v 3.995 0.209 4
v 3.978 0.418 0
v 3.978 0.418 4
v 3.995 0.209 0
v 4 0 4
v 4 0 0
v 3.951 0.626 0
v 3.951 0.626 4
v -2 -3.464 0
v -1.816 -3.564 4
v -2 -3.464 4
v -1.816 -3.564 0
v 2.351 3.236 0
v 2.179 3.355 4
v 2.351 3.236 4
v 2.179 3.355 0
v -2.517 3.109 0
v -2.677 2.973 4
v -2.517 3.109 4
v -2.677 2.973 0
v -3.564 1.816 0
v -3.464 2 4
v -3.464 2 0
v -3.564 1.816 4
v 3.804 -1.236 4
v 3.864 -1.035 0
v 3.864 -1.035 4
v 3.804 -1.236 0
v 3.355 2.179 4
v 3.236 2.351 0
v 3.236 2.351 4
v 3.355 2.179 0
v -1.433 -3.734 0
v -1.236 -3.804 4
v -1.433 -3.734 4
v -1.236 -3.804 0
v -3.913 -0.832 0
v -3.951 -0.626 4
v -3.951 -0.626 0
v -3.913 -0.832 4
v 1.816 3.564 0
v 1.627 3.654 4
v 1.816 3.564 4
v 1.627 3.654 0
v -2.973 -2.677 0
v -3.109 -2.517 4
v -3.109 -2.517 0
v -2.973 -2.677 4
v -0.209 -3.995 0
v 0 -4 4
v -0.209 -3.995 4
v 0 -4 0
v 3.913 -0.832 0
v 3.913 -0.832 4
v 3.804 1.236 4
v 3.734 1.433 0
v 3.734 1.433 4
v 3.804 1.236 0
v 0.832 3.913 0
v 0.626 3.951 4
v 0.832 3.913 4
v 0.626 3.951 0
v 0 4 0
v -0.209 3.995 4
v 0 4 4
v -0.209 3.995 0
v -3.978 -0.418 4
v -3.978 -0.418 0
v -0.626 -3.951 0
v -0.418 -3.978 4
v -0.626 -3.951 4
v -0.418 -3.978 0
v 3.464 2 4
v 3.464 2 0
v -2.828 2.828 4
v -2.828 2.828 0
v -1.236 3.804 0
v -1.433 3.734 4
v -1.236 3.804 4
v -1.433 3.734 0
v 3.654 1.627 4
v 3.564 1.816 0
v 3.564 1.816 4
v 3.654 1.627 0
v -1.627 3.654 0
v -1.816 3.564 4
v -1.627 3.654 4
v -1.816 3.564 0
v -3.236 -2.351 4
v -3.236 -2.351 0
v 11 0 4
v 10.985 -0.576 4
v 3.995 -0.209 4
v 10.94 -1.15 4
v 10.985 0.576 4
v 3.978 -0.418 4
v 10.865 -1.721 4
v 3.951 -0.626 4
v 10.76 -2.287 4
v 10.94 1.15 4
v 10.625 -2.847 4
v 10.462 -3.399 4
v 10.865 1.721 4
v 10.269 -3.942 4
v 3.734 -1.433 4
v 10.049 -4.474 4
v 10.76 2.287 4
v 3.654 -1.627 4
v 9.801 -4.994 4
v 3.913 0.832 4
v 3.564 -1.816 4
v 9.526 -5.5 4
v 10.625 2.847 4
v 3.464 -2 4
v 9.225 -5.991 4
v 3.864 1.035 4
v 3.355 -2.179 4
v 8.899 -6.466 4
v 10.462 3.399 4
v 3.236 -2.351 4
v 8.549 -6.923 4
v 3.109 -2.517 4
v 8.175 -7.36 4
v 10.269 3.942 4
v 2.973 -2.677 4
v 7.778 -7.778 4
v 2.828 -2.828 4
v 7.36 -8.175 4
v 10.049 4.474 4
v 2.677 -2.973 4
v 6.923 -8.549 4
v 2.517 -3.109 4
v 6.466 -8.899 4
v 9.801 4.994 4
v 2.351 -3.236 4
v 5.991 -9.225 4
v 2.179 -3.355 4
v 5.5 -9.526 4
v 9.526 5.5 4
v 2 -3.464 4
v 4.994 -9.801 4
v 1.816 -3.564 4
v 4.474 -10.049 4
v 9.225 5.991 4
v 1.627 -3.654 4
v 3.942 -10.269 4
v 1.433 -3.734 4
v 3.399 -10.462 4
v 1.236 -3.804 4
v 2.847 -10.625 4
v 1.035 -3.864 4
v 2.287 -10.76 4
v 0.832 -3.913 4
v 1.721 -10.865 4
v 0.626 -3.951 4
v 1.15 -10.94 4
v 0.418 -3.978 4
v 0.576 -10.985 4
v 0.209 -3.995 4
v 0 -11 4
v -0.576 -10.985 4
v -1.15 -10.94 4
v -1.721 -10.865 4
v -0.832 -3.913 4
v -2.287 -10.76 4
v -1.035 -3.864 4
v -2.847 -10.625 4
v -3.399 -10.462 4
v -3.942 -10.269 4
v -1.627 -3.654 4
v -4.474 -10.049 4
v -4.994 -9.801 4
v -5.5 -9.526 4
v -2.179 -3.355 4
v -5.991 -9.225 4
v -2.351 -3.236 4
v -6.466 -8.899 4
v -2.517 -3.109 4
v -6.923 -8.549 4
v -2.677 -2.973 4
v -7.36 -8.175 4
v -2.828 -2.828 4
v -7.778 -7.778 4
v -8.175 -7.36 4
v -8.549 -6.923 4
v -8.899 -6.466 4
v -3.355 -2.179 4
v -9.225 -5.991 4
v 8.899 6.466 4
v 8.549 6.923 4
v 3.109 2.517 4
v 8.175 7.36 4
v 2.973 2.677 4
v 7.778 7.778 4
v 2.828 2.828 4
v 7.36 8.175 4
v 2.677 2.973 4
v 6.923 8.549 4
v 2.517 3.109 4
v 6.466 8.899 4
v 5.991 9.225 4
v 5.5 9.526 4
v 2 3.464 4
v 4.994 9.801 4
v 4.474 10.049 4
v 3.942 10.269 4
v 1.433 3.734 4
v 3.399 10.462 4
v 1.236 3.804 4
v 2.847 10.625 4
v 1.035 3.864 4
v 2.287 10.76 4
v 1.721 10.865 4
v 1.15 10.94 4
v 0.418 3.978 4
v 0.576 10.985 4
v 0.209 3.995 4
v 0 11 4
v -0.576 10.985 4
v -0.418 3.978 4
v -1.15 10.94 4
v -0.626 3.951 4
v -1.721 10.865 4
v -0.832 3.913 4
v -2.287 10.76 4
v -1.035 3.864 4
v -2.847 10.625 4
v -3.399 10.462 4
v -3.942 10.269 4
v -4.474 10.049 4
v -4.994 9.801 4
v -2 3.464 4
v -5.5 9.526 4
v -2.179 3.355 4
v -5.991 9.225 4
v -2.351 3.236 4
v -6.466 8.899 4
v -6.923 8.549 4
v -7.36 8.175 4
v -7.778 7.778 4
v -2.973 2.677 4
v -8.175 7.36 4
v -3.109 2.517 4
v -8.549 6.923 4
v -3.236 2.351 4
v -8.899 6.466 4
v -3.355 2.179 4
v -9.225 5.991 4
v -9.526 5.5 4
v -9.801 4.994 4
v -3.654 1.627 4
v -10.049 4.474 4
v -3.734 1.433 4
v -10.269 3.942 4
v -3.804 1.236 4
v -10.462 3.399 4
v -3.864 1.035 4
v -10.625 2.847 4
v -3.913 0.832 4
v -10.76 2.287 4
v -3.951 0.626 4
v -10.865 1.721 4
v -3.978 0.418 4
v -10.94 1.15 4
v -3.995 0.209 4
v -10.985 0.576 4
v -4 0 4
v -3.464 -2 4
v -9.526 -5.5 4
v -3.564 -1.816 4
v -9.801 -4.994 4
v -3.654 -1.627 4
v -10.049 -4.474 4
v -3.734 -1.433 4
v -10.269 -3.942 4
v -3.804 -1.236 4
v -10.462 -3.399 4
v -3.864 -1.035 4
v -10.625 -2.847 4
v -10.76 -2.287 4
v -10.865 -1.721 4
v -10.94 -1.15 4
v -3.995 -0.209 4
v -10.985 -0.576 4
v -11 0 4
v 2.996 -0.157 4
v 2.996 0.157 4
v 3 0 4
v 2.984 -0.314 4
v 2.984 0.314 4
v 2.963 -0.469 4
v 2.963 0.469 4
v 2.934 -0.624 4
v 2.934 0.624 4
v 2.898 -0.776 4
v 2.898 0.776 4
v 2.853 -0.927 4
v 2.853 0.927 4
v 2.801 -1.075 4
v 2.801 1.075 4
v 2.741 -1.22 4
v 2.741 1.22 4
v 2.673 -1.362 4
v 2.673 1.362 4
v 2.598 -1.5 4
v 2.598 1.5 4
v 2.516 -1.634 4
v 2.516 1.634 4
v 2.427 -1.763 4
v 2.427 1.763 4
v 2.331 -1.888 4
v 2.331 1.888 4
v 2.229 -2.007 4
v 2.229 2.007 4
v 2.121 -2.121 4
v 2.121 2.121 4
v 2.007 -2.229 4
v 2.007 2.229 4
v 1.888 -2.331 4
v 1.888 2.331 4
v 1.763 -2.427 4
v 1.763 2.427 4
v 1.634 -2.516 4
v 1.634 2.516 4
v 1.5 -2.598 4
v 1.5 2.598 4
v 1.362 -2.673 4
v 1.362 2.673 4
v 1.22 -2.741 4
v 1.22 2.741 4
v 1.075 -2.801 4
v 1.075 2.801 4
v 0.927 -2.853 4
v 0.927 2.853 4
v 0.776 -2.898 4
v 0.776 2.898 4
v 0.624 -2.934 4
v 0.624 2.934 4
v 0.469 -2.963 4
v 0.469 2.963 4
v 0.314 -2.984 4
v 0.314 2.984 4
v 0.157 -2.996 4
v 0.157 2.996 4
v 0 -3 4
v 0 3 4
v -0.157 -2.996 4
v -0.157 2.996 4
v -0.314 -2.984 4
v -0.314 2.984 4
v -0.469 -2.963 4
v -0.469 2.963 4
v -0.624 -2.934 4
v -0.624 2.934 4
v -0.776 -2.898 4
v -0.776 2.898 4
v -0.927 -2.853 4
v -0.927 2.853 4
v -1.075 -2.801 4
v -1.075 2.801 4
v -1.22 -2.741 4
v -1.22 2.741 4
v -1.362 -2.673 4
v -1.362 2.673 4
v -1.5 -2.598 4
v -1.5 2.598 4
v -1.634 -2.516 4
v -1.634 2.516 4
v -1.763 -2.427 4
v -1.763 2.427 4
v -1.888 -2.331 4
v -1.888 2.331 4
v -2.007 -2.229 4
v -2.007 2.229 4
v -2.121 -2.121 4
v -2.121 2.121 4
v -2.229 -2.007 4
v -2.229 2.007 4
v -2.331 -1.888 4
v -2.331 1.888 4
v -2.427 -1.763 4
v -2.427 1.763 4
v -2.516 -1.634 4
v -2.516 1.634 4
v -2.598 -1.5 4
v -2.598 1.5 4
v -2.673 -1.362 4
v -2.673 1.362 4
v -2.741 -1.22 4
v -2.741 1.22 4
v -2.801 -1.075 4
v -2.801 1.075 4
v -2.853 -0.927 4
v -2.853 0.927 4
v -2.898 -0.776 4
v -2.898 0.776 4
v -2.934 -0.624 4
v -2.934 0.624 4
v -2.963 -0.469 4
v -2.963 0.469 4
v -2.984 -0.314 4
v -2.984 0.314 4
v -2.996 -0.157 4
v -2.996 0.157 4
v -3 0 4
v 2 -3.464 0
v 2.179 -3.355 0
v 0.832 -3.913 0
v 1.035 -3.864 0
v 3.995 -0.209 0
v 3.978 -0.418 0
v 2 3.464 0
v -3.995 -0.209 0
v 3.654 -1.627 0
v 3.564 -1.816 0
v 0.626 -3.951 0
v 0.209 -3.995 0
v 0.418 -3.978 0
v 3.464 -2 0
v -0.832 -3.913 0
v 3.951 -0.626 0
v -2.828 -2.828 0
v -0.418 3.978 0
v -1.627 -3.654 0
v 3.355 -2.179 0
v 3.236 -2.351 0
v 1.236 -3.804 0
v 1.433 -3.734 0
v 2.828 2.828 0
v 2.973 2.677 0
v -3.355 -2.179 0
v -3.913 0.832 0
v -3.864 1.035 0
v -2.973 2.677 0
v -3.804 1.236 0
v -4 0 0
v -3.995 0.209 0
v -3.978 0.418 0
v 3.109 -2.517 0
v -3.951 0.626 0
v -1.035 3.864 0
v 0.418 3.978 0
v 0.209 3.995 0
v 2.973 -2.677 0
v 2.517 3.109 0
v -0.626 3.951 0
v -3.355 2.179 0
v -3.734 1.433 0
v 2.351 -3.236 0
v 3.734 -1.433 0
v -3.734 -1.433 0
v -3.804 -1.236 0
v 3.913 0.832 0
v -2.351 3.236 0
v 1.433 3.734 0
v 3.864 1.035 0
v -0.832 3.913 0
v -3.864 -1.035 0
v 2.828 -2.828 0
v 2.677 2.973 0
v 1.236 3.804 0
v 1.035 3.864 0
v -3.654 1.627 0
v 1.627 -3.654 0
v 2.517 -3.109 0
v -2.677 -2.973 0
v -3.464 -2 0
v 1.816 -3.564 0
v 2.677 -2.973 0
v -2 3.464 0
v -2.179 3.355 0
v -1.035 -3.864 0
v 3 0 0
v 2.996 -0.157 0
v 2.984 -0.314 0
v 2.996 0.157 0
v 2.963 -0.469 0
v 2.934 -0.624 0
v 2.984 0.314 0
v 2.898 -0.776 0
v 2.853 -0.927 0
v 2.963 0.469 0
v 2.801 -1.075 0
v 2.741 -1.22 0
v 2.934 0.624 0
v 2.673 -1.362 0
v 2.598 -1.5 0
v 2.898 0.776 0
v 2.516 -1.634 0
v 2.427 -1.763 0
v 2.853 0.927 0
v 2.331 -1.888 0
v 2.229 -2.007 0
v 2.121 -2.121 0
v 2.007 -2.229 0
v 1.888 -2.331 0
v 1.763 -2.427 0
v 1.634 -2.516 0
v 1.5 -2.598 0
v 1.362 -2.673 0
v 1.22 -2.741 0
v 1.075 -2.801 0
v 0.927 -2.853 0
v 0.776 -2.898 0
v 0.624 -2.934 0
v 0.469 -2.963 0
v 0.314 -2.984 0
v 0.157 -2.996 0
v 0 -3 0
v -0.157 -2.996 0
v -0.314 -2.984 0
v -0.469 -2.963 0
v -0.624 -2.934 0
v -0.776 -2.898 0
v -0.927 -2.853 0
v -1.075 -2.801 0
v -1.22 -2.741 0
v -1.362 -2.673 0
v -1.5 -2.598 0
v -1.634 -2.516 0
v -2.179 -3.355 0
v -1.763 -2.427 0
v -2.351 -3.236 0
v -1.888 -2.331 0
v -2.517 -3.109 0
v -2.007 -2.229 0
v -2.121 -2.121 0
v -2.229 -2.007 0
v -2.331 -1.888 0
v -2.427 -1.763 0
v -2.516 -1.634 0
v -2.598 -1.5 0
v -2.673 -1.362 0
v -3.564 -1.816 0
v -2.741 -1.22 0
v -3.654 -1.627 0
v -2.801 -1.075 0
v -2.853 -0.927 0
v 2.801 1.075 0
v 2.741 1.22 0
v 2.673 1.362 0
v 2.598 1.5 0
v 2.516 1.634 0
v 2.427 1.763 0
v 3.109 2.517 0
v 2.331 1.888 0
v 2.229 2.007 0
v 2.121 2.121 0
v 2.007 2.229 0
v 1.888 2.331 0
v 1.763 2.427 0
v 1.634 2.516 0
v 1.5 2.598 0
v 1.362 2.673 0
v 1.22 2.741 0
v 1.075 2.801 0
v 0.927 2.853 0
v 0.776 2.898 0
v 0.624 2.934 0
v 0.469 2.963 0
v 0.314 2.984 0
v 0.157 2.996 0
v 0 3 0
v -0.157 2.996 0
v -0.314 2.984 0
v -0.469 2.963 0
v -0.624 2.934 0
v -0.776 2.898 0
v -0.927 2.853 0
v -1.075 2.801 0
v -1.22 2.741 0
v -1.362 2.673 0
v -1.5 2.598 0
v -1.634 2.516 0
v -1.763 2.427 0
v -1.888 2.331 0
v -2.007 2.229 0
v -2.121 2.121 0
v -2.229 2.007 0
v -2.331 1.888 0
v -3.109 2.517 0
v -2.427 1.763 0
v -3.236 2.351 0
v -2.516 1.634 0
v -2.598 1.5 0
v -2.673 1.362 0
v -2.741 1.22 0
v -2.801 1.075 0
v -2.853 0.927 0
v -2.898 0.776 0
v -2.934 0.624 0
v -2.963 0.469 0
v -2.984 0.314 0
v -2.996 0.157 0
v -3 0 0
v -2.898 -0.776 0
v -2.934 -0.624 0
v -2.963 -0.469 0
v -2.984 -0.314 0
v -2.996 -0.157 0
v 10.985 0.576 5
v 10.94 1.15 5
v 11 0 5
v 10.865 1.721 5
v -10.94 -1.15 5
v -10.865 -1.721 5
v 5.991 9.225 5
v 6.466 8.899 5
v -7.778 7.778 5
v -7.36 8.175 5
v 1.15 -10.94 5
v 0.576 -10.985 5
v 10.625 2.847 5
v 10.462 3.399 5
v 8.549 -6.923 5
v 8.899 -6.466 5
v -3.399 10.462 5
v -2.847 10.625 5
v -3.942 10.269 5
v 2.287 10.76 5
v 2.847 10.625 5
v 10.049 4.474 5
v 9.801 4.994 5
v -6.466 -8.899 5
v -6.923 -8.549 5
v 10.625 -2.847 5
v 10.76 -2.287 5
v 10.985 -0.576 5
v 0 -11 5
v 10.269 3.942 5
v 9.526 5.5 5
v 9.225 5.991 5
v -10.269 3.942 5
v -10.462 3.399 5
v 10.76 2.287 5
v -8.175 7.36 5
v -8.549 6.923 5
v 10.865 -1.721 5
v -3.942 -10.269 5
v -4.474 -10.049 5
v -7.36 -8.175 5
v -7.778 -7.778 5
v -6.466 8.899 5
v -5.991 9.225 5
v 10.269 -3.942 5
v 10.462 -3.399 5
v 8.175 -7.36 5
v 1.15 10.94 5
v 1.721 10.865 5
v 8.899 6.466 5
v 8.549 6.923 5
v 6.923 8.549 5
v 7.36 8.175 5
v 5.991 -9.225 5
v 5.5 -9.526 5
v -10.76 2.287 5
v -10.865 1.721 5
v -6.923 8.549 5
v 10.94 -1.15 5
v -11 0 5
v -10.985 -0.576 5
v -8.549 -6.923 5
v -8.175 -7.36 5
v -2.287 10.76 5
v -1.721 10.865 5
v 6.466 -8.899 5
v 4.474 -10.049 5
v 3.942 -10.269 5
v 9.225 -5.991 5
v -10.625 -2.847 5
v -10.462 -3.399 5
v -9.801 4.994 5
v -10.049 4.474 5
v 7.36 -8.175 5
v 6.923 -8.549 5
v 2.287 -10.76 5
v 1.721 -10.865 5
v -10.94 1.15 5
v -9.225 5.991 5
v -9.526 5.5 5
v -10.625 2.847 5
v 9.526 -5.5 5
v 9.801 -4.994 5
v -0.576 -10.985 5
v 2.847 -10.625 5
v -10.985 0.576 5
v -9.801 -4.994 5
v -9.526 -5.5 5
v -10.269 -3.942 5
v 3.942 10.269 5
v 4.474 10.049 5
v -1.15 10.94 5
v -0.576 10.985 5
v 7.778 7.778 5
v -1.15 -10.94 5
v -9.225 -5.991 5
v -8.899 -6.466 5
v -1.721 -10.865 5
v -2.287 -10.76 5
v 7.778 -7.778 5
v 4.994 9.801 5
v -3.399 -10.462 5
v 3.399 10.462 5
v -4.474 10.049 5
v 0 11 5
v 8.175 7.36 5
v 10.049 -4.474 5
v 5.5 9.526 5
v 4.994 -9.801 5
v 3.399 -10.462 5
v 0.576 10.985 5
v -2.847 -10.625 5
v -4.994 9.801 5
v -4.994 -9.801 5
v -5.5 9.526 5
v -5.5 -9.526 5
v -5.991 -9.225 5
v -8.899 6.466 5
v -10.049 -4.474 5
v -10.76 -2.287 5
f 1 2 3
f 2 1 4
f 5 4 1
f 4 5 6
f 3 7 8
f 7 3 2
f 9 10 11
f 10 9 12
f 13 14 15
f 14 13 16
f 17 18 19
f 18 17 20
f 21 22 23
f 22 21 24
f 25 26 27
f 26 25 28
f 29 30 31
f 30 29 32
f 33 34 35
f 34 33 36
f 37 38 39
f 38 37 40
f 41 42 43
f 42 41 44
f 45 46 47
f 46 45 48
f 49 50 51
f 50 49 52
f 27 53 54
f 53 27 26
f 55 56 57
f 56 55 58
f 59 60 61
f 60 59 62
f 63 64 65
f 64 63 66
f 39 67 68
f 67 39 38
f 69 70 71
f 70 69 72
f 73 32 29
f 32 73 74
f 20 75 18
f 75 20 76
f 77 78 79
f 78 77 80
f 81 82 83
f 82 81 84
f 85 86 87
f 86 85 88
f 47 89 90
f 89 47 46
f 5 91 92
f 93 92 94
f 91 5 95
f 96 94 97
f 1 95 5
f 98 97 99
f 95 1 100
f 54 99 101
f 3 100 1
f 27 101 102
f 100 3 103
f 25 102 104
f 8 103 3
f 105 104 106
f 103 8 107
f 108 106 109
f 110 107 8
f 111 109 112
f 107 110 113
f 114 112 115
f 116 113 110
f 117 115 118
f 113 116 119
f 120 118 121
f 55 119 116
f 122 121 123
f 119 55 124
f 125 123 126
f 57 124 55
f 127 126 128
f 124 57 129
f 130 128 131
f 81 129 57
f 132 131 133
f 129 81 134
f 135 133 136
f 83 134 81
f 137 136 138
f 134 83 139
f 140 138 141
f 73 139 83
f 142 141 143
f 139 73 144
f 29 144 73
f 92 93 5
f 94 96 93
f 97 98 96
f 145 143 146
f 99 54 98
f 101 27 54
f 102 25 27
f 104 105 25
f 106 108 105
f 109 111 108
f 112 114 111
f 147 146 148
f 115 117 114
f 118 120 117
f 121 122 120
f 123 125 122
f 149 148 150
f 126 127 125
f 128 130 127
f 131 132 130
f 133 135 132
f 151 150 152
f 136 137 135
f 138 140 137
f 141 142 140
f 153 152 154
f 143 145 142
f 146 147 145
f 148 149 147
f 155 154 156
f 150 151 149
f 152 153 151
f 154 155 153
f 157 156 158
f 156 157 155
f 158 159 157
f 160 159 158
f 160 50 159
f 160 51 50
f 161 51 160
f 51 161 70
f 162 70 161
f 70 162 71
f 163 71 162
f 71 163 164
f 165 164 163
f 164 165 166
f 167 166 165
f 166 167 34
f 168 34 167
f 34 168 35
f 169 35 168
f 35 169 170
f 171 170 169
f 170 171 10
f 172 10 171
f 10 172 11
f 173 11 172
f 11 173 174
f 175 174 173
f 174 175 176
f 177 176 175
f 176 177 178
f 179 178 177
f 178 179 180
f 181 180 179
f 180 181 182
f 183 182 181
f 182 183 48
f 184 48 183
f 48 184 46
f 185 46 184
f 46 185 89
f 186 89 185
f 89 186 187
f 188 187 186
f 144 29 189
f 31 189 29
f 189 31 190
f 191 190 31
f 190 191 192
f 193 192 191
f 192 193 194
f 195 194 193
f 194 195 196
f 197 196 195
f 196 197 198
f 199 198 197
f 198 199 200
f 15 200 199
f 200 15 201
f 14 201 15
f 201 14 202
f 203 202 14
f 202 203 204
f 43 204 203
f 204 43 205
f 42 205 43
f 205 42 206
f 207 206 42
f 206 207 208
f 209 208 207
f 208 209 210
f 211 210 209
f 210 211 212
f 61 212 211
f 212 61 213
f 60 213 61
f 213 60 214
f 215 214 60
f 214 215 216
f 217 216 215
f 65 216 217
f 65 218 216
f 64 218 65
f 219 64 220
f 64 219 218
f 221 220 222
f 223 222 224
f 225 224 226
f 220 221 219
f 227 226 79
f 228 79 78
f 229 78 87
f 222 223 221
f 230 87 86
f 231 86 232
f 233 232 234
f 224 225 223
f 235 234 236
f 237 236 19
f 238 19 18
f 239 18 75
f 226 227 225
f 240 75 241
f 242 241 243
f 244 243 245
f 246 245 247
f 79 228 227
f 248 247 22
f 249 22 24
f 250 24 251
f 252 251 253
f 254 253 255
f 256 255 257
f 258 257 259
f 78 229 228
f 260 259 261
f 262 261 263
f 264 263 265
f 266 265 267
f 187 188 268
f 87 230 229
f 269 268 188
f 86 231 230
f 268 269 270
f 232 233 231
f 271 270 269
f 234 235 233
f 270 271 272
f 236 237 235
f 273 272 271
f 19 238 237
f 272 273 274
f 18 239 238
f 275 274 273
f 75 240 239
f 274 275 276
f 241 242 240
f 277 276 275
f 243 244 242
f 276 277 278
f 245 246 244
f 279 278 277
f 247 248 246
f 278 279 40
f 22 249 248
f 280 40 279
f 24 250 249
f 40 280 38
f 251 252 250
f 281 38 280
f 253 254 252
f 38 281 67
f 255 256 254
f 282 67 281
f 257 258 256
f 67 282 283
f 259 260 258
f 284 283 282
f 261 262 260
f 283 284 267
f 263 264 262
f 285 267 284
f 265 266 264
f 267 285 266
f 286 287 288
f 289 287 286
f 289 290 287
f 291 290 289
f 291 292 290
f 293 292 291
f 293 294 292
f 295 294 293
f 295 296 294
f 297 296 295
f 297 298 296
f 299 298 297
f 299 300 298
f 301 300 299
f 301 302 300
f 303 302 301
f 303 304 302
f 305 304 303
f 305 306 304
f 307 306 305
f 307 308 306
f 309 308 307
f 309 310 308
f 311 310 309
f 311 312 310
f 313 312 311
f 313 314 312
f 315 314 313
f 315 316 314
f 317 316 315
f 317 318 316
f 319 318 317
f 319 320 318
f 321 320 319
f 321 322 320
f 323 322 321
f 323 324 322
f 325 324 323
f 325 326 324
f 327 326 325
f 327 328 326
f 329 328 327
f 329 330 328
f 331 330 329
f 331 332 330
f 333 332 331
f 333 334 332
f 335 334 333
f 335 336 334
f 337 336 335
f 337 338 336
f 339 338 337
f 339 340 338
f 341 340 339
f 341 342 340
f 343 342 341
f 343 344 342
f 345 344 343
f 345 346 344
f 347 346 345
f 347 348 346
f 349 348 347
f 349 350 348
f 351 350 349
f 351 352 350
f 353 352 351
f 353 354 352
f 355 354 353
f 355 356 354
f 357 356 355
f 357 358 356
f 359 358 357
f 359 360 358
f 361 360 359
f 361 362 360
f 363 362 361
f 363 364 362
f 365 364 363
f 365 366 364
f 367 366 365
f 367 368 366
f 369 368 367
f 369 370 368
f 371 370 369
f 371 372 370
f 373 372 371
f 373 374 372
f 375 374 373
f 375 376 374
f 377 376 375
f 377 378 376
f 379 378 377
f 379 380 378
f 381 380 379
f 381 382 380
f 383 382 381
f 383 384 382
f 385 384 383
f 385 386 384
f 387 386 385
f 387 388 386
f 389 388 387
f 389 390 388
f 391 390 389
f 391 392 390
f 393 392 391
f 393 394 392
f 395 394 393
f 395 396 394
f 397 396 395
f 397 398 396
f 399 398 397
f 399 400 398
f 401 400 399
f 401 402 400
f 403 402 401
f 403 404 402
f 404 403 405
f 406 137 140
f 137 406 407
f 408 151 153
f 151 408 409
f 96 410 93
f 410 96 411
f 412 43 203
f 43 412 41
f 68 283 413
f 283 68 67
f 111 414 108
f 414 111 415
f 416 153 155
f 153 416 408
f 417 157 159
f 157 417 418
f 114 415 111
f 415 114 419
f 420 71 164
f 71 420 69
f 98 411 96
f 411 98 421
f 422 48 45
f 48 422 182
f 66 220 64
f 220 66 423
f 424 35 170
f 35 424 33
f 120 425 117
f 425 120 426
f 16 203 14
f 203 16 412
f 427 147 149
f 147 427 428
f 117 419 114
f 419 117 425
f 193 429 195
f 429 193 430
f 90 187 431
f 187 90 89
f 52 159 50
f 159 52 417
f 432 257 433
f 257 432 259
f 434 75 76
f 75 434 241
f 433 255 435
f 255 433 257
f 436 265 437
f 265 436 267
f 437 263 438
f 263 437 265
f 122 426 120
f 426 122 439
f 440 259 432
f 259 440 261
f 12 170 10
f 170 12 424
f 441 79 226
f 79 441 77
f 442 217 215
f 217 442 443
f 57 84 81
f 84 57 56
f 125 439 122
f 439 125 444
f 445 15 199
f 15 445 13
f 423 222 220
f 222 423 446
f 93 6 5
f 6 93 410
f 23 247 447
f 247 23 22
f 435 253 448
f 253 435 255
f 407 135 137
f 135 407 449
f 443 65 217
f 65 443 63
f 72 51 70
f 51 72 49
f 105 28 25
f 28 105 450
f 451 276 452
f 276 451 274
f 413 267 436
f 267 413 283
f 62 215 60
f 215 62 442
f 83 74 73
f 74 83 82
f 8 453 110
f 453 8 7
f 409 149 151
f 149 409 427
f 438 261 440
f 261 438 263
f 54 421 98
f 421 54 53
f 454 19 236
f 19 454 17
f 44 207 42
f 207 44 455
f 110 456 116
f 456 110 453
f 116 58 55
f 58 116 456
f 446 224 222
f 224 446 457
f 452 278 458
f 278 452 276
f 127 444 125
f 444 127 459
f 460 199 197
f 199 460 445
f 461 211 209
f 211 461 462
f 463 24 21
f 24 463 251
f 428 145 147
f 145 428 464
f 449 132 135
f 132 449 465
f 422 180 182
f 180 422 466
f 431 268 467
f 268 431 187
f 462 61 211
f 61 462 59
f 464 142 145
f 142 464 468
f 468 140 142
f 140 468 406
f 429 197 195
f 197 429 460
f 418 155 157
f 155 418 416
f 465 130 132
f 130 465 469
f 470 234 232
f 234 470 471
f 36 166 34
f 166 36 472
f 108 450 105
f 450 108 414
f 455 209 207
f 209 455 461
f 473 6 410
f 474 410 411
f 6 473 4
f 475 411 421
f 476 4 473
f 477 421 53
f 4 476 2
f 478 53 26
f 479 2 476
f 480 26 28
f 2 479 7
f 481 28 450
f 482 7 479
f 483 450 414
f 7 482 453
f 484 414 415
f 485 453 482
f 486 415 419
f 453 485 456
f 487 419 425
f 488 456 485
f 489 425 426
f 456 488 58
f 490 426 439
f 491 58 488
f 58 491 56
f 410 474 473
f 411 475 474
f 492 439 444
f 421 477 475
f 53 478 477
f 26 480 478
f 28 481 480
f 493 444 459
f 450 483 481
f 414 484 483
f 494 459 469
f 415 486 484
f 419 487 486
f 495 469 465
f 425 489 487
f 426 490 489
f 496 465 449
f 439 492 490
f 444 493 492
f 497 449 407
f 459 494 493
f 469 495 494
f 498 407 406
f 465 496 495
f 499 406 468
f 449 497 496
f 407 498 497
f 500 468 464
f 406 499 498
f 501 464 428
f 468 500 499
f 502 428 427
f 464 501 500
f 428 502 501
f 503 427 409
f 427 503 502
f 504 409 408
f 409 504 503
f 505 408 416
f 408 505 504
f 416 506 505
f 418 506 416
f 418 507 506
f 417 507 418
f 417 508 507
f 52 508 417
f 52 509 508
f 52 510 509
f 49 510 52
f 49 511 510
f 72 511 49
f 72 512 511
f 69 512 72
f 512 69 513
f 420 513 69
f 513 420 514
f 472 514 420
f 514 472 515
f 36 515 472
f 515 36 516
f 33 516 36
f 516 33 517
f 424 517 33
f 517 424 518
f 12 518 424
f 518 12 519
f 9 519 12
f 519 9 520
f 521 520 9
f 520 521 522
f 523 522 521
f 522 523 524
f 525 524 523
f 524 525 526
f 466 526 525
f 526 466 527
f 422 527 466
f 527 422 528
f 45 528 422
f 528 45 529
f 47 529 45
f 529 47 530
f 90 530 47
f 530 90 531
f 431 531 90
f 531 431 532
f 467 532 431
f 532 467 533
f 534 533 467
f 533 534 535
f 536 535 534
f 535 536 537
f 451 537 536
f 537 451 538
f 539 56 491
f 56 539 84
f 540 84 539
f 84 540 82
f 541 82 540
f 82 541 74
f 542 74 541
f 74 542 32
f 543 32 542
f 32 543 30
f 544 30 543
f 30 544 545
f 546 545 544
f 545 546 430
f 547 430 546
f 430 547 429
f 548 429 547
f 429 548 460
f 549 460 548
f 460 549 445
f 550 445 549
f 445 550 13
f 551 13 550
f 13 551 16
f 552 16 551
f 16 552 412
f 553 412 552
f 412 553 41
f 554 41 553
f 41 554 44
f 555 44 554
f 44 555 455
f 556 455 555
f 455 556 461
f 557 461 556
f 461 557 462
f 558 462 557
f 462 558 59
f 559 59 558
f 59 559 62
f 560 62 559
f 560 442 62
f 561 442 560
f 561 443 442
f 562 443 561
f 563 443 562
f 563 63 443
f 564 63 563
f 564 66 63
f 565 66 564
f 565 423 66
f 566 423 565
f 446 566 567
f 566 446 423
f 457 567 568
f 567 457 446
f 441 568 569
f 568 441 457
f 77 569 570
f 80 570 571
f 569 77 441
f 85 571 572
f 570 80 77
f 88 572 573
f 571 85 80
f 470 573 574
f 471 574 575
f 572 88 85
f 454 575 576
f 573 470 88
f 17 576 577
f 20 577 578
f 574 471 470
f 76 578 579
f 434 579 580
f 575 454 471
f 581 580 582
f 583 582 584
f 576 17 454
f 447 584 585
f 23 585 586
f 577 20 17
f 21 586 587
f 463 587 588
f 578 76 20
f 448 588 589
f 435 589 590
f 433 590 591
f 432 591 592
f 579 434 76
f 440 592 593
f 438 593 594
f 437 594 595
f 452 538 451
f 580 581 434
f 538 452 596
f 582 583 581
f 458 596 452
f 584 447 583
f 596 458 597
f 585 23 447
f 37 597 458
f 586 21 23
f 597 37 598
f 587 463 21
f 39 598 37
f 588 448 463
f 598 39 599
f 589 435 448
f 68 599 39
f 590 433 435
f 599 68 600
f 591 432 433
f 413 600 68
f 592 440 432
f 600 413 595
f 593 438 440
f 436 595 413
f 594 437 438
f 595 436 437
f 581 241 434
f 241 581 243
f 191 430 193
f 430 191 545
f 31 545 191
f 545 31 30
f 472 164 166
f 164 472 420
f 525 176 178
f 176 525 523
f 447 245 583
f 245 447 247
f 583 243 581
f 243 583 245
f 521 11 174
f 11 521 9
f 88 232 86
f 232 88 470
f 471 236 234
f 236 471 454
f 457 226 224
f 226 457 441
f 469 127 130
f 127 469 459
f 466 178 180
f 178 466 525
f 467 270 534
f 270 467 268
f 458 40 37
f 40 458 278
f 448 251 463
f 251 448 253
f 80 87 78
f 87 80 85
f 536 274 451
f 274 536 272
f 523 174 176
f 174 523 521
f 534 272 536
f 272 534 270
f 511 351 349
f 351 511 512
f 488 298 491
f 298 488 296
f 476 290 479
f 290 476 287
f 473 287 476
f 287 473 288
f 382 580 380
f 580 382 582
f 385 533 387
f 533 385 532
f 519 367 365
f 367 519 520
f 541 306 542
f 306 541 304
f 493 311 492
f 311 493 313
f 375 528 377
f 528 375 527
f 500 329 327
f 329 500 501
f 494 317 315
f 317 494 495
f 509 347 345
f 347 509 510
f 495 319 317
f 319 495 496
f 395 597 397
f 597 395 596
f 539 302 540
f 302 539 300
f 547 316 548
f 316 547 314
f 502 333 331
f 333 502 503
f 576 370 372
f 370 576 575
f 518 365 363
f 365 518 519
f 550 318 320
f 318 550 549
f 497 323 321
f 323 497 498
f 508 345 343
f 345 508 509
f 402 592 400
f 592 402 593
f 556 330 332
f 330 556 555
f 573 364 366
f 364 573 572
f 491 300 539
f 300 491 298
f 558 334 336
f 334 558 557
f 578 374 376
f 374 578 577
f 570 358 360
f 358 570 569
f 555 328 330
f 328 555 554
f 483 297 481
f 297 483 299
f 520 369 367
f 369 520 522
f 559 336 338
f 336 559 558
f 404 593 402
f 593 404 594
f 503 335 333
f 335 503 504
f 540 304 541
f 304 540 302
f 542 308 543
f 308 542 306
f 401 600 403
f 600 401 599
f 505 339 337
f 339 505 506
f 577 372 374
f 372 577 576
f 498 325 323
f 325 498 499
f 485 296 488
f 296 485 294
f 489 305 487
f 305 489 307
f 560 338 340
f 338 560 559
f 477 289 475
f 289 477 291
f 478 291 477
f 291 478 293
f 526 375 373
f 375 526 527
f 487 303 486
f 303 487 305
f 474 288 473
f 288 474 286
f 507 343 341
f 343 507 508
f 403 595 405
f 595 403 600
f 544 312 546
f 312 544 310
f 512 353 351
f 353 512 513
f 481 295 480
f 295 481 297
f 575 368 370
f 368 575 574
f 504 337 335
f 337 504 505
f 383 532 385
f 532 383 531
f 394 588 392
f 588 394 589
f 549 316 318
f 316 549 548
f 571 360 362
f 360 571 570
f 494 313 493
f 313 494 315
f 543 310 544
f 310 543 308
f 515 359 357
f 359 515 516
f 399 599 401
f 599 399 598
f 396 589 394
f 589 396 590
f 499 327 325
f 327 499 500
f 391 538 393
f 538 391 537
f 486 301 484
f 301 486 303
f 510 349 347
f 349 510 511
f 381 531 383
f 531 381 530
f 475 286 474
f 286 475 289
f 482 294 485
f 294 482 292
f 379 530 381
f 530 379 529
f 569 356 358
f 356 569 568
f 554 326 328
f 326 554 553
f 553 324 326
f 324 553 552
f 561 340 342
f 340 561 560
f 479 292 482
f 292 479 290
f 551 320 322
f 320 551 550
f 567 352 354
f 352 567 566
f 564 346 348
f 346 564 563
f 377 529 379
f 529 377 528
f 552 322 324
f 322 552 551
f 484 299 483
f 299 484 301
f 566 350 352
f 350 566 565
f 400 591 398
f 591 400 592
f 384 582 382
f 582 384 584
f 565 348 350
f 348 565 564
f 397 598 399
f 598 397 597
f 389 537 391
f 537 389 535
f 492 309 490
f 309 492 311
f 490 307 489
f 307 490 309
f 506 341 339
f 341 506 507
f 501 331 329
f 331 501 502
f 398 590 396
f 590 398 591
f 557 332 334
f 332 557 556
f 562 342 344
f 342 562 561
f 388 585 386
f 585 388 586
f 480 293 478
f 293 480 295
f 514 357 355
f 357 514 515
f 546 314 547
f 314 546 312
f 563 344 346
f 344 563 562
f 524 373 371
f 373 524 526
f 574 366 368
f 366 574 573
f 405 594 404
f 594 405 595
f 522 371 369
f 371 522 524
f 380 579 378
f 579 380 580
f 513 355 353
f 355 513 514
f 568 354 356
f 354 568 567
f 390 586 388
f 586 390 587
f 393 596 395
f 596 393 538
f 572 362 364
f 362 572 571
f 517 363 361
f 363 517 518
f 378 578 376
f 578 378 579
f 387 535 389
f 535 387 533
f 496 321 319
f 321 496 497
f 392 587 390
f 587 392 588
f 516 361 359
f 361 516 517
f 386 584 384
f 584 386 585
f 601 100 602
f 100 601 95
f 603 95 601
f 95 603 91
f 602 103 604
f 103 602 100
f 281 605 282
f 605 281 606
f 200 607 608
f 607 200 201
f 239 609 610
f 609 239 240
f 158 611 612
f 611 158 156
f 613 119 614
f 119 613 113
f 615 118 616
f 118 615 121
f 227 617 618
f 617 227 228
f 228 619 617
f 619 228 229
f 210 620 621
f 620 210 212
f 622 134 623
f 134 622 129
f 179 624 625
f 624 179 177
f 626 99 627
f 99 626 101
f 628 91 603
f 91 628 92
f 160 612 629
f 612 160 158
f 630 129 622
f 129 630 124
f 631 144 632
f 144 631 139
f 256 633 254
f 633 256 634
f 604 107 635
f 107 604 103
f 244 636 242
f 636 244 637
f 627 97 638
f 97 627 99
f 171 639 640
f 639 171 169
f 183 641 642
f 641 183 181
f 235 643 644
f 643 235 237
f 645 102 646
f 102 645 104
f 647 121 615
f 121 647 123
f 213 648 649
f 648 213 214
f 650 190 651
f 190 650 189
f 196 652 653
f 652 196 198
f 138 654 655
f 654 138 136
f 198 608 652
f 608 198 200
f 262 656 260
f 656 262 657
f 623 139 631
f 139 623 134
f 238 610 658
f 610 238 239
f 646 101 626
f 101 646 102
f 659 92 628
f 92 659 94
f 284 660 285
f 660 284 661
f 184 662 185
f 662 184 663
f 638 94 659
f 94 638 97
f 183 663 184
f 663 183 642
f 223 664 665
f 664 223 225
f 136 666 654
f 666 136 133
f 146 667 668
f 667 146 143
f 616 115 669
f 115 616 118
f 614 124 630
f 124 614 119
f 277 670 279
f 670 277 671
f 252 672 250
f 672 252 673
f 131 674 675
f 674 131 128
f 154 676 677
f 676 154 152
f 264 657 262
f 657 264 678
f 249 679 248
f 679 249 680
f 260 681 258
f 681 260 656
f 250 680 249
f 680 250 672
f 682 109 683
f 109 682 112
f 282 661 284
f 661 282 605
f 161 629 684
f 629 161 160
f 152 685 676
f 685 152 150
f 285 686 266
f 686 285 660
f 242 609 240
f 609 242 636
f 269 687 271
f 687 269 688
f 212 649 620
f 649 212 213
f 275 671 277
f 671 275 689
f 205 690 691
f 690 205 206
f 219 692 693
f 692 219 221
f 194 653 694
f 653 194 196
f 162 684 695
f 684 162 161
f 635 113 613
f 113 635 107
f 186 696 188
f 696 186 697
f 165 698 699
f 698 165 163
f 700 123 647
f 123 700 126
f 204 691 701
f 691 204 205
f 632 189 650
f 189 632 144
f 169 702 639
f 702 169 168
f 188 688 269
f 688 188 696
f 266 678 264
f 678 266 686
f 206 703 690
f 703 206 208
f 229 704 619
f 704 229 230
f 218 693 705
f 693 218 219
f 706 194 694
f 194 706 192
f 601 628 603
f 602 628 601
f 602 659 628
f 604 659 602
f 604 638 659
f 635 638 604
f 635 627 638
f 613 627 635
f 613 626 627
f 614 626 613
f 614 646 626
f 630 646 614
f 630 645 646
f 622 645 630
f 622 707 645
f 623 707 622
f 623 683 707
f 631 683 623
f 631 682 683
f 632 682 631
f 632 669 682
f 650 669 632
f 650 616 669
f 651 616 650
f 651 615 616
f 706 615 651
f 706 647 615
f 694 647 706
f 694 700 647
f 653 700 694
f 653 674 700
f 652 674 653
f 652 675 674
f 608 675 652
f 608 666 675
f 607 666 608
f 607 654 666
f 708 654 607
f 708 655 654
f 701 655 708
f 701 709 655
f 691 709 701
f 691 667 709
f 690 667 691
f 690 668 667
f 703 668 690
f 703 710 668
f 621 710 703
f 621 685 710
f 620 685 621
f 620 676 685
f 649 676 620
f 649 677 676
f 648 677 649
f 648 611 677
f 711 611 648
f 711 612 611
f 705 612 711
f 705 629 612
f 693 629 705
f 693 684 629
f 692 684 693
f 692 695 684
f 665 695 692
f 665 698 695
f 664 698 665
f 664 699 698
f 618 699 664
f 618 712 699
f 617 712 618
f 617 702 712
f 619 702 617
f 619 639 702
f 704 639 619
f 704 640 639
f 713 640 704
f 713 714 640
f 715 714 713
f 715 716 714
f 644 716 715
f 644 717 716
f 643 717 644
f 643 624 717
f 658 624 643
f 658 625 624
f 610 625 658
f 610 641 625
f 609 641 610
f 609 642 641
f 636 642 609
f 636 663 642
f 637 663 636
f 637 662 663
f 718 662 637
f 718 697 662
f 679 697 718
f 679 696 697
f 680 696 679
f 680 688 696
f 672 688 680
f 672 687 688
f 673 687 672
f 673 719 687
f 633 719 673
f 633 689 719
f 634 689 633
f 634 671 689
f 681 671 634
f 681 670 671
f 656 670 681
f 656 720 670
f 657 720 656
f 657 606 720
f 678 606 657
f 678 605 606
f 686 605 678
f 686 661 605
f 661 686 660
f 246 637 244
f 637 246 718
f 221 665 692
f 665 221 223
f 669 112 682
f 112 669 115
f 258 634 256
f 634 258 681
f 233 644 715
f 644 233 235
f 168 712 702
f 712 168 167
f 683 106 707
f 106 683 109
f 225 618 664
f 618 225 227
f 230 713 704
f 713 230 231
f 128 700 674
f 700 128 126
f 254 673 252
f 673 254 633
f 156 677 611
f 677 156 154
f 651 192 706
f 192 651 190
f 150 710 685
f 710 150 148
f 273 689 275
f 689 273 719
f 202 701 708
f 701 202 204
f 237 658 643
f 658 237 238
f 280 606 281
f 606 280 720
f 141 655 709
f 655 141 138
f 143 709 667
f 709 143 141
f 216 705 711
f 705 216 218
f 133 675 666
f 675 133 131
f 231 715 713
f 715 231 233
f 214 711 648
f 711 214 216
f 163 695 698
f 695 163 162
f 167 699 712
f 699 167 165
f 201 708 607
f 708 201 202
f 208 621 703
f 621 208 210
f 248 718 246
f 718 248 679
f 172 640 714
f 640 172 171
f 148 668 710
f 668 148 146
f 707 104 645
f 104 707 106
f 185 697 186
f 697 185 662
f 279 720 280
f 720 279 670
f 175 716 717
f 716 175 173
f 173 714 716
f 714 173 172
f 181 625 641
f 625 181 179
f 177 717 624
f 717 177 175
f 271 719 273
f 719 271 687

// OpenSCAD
inner_diameter = 8;
height = 4;
otter_diameter = 22;

$fn=120;

difference() {
    cylinder(d=inner_diameter, height);
    cylinder(d=inner_diameter-2, height);
}
translate([0, 0, height]) cylinder(d=otter_diameter, 1);
